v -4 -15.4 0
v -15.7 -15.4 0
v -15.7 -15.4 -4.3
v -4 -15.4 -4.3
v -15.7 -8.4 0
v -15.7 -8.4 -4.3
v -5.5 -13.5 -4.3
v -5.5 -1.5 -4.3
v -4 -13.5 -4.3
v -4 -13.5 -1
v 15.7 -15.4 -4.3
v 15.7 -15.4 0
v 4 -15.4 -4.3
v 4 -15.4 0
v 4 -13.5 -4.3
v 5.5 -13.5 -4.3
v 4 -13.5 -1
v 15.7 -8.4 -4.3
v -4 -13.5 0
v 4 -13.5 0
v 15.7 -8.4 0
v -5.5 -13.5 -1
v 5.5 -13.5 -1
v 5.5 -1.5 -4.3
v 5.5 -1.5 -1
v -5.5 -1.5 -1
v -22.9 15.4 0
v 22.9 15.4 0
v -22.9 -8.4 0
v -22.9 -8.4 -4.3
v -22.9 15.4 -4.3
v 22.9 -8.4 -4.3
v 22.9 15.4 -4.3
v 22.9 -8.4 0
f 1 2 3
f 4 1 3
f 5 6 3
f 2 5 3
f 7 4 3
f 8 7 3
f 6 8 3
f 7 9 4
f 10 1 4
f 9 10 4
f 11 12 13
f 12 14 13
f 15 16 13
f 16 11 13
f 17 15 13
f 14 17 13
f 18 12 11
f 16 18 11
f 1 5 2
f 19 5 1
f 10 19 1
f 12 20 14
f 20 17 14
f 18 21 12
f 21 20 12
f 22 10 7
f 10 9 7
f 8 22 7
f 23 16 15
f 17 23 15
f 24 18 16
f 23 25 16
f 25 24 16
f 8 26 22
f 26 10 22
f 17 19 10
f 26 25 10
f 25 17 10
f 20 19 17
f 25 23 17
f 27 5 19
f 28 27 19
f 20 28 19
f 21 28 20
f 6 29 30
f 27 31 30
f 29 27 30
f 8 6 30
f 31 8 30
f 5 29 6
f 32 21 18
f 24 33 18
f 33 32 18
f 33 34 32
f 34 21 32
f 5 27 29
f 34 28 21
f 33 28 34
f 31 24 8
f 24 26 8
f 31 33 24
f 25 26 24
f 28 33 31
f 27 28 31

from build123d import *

# Parameters (mm, degrees)
BOSS_EXTRUDE1_DEPTH = 4.3
SKETCH3_W           = 8
SKETCH3_H           = 2
CUT_EXTRUDE1_DEPTH  = 4.3
SKETCH4_W           = 11
SKETCH4_H           = 12
CUT_EXTRUDE2_DEPTH  = 3.3


with BuildPart() as part:
    # Sketch2 → Boss-Extrude1 (new body)
    with BuildSketch(Plane.XY):
        Polygon((4, -15.4), (-15.7, -15.4), (-15.7, -8.4), (-22.9, -8.4), (-22.9, 15.4), (22.9, 15.4), (22.9, -8.4), (15.7, -8.4), (15.7, -15.4), align=None)
    extrude(amount=-BOSS_EXTRUDE1_DEPTH)

    # Sketch3 → Cut-Extrude1 (cut)
    with BuildSketch(Plane.XY):
        with Locations((0, -14.5)):
            Rectangle(SKETCH3_W, SKETCH3_H)
    extrude(amount=-CUT_EXTRUDE1_DEPTH, mode=Mode.SUBTRACT)

    # Sketch4 → Cut-Extrude2 (cut)
    with BuildSketch(Plane(origin=(0, 0, -4.3), x_dir=(-1, 0, 0), z_dir=(0, 0, -1))):
        with Locations((0, -7.5)):
            Rectangle(SKETCH4_W, SKETCH4_H)
    extrude(amount=-CUT_EXTRUDE2_DEPTH, mode=Mode.SUBTRACT)


solid = part.part
